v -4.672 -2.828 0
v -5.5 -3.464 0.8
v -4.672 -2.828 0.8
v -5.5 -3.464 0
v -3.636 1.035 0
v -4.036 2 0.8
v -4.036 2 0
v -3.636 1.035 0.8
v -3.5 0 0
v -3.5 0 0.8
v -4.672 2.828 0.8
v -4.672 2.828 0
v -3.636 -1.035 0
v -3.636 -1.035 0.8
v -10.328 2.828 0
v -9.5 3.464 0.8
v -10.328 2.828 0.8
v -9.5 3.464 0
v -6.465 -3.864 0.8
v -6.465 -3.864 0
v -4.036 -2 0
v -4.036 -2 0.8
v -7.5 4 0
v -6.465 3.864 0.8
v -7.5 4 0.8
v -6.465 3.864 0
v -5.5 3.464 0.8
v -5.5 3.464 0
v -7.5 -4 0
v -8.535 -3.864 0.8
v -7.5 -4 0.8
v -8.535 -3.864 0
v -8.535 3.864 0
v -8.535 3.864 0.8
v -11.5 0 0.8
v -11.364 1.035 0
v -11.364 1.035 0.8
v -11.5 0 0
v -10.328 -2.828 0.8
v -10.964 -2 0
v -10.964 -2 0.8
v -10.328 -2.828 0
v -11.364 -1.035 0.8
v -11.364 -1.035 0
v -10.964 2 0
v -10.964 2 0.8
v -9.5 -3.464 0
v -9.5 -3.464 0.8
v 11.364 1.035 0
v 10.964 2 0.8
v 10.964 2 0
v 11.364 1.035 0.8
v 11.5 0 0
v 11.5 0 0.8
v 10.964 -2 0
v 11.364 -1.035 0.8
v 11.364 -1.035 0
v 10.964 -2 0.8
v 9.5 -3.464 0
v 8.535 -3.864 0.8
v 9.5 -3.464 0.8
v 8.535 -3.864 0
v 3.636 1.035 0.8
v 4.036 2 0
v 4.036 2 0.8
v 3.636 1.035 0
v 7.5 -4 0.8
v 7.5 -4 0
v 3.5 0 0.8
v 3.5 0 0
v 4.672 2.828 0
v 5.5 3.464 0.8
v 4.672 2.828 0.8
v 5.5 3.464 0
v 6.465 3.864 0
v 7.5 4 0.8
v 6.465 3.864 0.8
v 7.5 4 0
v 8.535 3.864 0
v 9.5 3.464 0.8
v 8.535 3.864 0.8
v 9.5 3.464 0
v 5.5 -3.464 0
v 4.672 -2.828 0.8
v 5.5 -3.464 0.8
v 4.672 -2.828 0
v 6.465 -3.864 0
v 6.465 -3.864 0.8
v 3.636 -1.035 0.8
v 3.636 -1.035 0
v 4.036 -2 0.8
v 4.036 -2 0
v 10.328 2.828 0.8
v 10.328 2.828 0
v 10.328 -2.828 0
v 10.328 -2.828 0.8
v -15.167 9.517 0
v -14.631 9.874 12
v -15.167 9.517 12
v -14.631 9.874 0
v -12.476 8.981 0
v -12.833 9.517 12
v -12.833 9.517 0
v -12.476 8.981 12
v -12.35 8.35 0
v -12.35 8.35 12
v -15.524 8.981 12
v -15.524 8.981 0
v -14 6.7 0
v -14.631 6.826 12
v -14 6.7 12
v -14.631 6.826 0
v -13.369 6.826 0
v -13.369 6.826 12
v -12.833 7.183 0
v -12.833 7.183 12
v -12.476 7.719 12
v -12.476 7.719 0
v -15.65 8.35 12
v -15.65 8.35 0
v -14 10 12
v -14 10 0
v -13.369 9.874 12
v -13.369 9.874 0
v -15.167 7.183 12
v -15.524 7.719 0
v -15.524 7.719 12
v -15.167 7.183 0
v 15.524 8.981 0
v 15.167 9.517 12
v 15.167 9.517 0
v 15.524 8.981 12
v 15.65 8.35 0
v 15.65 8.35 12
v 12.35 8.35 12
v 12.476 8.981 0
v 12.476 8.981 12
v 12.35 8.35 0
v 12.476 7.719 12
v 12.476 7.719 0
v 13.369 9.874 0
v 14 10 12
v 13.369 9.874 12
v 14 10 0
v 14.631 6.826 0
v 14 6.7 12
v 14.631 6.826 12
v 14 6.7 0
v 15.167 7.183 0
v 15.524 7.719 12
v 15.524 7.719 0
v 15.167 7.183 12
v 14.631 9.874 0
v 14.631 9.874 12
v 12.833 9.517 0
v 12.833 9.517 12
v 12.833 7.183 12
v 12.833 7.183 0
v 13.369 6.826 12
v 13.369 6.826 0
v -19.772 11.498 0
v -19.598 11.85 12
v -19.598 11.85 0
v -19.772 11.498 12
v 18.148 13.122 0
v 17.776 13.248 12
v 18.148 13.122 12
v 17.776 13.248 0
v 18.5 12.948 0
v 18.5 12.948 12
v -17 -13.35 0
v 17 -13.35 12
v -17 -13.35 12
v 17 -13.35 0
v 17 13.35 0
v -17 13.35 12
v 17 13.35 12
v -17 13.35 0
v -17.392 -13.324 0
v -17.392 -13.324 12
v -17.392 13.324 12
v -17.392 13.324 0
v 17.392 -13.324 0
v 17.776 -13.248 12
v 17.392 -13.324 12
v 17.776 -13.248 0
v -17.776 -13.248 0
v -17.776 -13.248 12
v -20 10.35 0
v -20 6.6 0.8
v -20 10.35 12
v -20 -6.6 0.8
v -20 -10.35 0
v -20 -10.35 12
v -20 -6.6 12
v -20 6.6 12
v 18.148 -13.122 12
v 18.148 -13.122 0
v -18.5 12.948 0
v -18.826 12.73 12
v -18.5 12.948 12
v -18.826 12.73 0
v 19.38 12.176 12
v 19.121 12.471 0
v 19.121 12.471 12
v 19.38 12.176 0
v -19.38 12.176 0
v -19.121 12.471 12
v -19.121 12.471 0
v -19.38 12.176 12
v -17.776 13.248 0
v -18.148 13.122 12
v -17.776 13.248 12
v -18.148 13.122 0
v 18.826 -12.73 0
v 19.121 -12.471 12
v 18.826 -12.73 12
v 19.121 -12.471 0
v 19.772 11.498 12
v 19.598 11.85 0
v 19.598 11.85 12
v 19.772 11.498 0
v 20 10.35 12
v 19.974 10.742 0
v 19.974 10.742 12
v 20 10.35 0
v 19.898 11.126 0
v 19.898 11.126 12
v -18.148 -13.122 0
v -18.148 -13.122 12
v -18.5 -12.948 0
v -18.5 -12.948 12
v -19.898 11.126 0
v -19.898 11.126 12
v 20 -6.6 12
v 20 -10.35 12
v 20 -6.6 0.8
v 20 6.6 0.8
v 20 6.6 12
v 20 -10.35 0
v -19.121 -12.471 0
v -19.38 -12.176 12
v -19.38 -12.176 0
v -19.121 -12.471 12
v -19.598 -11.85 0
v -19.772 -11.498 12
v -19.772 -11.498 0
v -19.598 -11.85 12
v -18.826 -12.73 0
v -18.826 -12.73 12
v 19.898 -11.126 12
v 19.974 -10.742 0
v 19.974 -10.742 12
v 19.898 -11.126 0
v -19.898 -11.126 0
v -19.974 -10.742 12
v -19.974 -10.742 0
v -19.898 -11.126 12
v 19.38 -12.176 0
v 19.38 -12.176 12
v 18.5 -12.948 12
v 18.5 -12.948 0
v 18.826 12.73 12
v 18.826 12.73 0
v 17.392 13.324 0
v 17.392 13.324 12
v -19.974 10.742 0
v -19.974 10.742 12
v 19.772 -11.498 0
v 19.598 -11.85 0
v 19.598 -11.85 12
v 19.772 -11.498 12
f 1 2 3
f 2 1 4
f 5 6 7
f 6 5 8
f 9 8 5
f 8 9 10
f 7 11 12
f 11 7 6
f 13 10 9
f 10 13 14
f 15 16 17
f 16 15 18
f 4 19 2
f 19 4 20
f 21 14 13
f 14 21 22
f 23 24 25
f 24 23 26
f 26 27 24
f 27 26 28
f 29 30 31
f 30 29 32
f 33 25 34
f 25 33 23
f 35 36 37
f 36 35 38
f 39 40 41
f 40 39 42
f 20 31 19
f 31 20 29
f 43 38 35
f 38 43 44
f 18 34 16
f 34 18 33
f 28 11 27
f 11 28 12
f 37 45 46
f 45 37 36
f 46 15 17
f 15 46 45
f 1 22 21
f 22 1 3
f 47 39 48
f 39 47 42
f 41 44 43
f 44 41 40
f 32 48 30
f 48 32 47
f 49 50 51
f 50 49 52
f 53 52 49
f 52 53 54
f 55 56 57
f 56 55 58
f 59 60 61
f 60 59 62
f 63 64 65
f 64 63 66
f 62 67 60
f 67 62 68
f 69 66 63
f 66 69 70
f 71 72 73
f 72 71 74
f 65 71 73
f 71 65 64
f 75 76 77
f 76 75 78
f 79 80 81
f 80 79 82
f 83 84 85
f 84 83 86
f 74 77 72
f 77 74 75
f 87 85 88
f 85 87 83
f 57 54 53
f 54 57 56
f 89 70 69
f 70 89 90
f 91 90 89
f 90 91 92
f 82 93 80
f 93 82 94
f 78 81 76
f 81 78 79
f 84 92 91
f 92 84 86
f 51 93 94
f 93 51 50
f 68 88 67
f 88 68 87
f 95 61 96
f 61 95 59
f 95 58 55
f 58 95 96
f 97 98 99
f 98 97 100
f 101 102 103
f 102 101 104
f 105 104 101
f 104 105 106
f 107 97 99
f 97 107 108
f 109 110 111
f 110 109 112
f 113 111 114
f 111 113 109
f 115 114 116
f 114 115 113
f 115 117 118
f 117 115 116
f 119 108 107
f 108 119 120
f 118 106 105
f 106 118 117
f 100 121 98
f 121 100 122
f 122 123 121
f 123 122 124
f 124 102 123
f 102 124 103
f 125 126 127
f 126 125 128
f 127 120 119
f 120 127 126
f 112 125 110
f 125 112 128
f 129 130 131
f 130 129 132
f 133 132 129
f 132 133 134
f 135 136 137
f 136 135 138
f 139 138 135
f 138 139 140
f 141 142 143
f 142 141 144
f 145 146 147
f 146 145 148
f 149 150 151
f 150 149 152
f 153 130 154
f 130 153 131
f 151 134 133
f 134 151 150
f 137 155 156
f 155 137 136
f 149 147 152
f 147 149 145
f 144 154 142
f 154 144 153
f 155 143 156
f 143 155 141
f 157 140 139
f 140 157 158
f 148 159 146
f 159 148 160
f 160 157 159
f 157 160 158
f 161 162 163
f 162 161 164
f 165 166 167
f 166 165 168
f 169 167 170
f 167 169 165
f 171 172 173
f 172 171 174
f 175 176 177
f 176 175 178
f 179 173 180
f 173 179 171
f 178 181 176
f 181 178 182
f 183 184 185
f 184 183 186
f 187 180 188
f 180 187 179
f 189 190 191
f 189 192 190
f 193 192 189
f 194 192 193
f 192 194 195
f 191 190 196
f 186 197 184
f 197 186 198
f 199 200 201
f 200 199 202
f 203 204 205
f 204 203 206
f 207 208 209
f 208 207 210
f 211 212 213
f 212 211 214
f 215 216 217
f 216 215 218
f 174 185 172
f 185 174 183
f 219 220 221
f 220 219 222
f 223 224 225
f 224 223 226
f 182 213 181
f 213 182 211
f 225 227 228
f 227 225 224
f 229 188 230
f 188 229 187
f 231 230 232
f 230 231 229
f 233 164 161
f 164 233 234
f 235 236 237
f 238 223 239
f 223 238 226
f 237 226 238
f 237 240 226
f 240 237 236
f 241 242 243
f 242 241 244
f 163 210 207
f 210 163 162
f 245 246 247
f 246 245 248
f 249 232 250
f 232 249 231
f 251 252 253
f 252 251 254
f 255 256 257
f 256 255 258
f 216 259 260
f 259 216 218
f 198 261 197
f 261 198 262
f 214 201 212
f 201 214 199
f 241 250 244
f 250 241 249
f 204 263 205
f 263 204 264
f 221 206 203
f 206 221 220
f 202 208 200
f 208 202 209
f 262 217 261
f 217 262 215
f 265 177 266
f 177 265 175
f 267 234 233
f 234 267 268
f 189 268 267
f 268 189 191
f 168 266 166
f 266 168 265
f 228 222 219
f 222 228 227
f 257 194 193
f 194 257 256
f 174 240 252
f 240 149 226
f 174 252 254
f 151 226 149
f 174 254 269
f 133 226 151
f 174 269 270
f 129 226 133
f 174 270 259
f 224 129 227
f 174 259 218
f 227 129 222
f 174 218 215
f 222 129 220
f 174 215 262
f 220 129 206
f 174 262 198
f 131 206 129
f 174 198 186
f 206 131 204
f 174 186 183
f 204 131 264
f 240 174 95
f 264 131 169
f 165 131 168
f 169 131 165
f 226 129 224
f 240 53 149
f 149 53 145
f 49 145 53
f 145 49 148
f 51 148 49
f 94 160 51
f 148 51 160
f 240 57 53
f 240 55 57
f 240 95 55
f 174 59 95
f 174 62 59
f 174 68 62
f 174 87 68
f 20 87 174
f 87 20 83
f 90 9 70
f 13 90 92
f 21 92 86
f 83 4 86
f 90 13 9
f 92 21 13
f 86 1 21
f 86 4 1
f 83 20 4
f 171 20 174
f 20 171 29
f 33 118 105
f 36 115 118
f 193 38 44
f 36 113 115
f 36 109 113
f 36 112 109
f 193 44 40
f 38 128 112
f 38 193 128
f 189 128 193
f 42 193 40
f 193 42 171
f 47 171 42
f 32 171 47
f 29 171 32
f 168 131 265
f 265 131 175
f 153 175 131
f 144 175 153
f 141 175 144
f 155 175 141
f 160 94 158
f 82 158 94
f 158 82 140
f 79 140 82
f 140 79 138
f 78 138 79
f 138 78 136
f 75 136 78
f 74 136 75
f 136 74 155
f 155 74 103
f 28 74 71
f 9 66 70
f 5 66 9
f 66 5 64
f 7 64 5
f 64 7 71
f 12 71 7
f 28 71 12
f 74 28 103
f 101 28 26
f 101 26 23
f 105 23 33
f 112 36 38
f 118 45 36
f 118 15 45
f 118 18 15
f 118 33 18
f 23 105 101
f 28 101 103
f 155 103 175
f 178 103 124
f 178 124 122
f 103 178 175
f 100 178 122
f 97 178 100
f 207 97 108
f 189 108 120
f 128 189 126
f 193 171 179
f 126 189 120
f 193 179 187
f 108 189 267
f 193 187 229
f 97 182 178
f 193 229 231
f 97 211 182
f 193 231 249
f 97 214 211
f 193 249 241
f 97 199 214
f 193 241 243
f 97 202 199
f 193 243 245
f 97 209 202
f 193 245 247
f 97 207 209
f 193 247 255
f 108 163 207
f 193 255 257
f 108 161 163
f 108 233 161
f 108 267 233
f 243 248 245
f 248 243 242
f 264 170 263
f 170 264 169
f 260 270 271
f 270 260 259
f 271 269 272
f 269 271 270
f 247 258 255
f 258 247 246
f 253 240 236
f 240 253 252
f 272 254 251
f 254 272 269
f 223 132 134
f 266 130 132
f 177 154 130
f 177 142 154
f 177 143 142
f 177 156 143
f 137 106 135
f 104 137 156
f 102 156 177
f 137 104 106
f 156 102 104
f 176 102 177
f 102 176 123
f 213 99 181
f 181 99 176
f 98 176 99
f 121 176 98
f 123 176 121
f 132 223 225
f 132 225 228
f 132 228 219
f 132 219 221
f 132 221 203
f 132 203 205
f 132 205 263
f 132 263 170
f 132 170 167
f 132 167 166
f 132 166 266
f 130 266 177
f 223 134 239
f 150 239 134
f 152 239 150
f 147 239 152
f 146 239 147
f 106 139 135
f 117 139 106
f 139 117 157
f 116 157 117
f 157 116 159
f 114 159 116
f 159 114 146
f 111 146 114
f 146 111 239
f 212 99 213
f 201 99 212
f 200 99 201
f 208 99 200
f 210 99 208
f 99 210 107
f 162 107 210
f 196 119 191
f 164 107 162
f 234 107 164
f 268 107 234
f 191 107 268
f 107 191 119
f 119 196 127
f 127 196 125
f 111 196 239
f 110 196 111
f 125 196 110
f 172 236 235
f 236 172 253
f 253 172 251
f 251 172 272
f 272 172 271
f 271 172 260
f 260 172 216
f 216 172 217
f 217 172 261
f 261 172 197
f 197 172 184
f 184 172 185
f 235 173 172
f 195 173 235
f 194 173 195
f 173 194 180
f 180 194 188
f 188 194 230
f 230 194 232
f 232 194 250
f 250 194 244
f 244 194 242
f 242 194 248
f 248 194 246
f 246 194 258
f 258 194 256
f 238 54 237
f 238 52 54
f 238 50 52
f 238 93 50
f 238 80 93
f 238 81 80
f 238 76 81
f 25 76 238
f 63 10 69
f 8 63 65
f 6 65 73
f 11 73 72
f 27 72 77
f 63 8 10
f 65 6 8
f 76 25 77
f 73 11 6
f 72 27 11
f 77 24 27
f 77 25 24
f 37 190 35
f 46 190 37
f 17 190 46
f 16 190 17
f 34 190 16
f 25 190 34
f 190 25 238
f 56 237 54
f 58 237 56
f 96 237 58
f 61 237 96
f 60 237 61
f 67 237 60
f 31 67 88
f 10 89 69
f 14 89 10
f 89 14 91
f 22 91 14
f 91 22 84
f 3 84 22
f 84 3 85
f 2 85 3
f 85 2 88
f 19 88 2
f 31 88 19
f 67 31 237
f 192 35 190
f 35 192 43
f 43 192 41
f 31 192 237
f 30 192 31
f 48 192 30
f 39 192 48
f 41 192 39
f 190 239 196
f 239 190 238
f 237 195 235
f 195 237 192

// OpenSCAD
// file: lib/constants.scad
// ============================================================================
// DIY Supplement Dispenser – shared dimensions (Phase 1 v0.2)
// Source of truth: docs/PHASE1_DESIGN_HANDOFF.md (geometry locks)
// Units: millimetres.
//
// v0.2 stack-up fix:
//   Coupler lives in motor-end bore zone; flights shorter so free end
//   can close with a root-diameter bushing. Assemble auger from free end.
// ============================================================================

// ----- Material / print -----
WALL_T           = 2.2;
CLEARANCE_LOOSE  = 0.4;
CLEARANCE_SLIDE  = 0.25;
CLEARANCE_PRESS  = 0.05;

// ----- Hopper -----
HOPPER_TOP_ID      = 90;
HOPPER_BOT_ID      = 22;
HOPPER_ANGLE_DEG   = 65;
HOPPER_CYL_H       = 40;
HOPPER_WALL        = 2.2;
HOPPER_FLANGE_W    = 7;
HOPPER_FLANGE_T    = 3.5;
HOPPER_BOLT_CIRCLE = 100;
HOPPER_M3_D        = 3.3;
// Cone height: (45 - 11) * tan(65°) ≈ 72.9 mm
HOPPER_CONE_H      = (HOPPER_TOP_ID/2 - HOPPER_BOT_ID/2) * tan(HOPPER_ANGLE_DEG);
// Approximate internal volume (ml): frustum + cylinder ≈ 200 + 254 ≈ 455 ml
HOPPER_SPIGOT_H    = 8;
HOPPER_SPIGOT_OD   = HOPPER_BOT_ID + 2*HOPPER_WALL;
HOPPER_BOT_FLANGE_OD = 42;
HOPPER_BOT_FLANGE_T  = 3.5;
HOPPER_BOT_BOLT_CIRCLE = 34;

// ----- Auger screw (stack-up: coupler zone + flights + tip ≤ barrel) -----
AUGER_OD       = 16.8;
AUGER_ROOT_D   = 8.5;
AUGER_PITCH    = 11;
// Active flights shorter so coupler zone + tip fit in 70 mm barrel
AUGER_LENGTH   = 48;    // was 70 — did not fit with coupler
AUGER_FLIGHT_T = 1.6;
AUGER_SHAFT_D  = 5.0;
AUGER_COUPLER_L = 14;
AUGER_COUPLER_OD = 12;
AUGER_SETSCREW_D = 3.0;
AUGER_TIP_L    = 6;
// Coupler shoulder after coupler body
AUGER_SHOULDER_L = 2.5;

// ----- Barrel / housing -----
BARREL_ID      = 18.0;
BARREL_OD      = BARREL_ID + 2*WALL_T;
BARREL_LENGTH  = 70;
// Motor-end coupler pocket (enlarged bore so 12 mm coupler seats inside barrel)
COUPLER_BORE_D = AUGER_COUPLER_OD + 1.0;  // ~13 mm
COUPLER_ZONE_L = AUGER_COUPLER_L + AUGER_SHOULDER_L + 1; // ~17.5 mm
// Free-end bushing (root + clearance) — CLOSES powder path
BUSHING_ID     = AUGER_ROOT_D + 0.9;  // ~9.4 mm — tip only, not full barrel ID
BUSHING_DEPTH  = 6;
INLET_ID       = HOPPER_BOT_ID;
INLET_BORE_H   = 12;
OUTLET_ID      = 16;
OUTLET_L       = 12;
OUTLET_WALL    = 2.0;
// Side access for M3 set-screw on coupler (radial hole in housing)
SETSCREW_ACCESS_D = 4.0;

// ----- NEMA17 -----
NEMA17_FACE        = 42;
NEMA17_HOLE_SPACE  = 31;
NEMA17_HOLE_D      = 3.3;
NEMA17_PILOT_D     = 22.5;
NEMA17_PLATE_T     = 4.0;
// Shaft pass-through only (coupler does NOT pass the plate)
NEMA17_SHAFT_CLEAR = 6.0;

// ----- Vibration motor -----
VIBE_MOTOR_D   = 12;
VIBE_MOTOR_H   = 3.2;
VIBE_WIRE_W    = 3.5;
VIBE_WIRE_H    = 1.5;

// ----- Load cell / scale platform -----
// Common bar cell ~80×12.7; some Amazon kits are 76×13.5 — verify yours
LOADCELL_L     = 80;
LOADCELL_W     = 12.7;
LOADCELL_H     = 12.7;
LOADCELL_HOLE_SPACE = 15;
LOADCELL_HOLE_D     = 4.2;
CUP_RECESS_D   = 70;
CUP_RECESS_H   = 3;

// ----- Test stand -----
STAND_OUTLET_CLEARANCE = 55;
STAND_FOOT_T   = 4;
STAND_POST_W   = 14;

// ----- Lid -----
LID_LIP_H      = 6;
LID_LIP_CLEAR  = 0.35;

PART_VERSION   = "v02";
// main file
// ============================================================================
// loadcell_fixed_base_v01.scad – fixed end of 5 kg bar load cell
// Stack: table → THIS → cell fixed end → (live end) → scale_platform → cup
// Verify hole spacing on your cell (default 15 mm M4).
// ============================================================================

include <lib/constants.scad>

cell_w     = LOADCELL_W;
hole_space = LOADCELL_HOLE_SPACE;
hole_d     = LOADCELL_HOLE_D;
base_x     = 40;
base_y     = cell_w + 14;
base_h     = 12;
m4_cbore_d = 8;

$fn = 48;

module loadcell_fixed_base() {
    difference() {
        hull() {
            for (x = [3, base_x - 3], y = [3, base_y - 3])
                translate([x - base_x/2, y - base_y/2, 0])
                    cylinder(d = 6, h = base_h);
        }
        // Cell seat pocket on top
        translate([-base_x/2 - 0.1, -cell_w/2 - 0.25, base_h - LOADCELL_H + 1.5])
            cube([base_x + 0.2, cell_w + 0.5, LOADCELL_H]);
        // M4 holes
        for (dx = [-hole_space/2, hole_space/2])
            translate([dx, 0, -0.1])
                cylinder(d = hole_d, h = base_h + 0.2, $fn = 24);
        // Counterbore from bottom for bolt heads
        for (dx = [-hole_space/2, hole_space/2])
            translate([dx, 0, -0.05])
                cylinder(d = m4_cbore_d, h = 3.2, $fn = 24);
        // Table mount M3
        for (dx = [-14, 14])
            translate([dx, base_y/2 - 5, -0.1])
                cylinder(d = 3.3, h = base_h + 0.2, $fn = 16);
    }
}

loadcell_fixed_base();
